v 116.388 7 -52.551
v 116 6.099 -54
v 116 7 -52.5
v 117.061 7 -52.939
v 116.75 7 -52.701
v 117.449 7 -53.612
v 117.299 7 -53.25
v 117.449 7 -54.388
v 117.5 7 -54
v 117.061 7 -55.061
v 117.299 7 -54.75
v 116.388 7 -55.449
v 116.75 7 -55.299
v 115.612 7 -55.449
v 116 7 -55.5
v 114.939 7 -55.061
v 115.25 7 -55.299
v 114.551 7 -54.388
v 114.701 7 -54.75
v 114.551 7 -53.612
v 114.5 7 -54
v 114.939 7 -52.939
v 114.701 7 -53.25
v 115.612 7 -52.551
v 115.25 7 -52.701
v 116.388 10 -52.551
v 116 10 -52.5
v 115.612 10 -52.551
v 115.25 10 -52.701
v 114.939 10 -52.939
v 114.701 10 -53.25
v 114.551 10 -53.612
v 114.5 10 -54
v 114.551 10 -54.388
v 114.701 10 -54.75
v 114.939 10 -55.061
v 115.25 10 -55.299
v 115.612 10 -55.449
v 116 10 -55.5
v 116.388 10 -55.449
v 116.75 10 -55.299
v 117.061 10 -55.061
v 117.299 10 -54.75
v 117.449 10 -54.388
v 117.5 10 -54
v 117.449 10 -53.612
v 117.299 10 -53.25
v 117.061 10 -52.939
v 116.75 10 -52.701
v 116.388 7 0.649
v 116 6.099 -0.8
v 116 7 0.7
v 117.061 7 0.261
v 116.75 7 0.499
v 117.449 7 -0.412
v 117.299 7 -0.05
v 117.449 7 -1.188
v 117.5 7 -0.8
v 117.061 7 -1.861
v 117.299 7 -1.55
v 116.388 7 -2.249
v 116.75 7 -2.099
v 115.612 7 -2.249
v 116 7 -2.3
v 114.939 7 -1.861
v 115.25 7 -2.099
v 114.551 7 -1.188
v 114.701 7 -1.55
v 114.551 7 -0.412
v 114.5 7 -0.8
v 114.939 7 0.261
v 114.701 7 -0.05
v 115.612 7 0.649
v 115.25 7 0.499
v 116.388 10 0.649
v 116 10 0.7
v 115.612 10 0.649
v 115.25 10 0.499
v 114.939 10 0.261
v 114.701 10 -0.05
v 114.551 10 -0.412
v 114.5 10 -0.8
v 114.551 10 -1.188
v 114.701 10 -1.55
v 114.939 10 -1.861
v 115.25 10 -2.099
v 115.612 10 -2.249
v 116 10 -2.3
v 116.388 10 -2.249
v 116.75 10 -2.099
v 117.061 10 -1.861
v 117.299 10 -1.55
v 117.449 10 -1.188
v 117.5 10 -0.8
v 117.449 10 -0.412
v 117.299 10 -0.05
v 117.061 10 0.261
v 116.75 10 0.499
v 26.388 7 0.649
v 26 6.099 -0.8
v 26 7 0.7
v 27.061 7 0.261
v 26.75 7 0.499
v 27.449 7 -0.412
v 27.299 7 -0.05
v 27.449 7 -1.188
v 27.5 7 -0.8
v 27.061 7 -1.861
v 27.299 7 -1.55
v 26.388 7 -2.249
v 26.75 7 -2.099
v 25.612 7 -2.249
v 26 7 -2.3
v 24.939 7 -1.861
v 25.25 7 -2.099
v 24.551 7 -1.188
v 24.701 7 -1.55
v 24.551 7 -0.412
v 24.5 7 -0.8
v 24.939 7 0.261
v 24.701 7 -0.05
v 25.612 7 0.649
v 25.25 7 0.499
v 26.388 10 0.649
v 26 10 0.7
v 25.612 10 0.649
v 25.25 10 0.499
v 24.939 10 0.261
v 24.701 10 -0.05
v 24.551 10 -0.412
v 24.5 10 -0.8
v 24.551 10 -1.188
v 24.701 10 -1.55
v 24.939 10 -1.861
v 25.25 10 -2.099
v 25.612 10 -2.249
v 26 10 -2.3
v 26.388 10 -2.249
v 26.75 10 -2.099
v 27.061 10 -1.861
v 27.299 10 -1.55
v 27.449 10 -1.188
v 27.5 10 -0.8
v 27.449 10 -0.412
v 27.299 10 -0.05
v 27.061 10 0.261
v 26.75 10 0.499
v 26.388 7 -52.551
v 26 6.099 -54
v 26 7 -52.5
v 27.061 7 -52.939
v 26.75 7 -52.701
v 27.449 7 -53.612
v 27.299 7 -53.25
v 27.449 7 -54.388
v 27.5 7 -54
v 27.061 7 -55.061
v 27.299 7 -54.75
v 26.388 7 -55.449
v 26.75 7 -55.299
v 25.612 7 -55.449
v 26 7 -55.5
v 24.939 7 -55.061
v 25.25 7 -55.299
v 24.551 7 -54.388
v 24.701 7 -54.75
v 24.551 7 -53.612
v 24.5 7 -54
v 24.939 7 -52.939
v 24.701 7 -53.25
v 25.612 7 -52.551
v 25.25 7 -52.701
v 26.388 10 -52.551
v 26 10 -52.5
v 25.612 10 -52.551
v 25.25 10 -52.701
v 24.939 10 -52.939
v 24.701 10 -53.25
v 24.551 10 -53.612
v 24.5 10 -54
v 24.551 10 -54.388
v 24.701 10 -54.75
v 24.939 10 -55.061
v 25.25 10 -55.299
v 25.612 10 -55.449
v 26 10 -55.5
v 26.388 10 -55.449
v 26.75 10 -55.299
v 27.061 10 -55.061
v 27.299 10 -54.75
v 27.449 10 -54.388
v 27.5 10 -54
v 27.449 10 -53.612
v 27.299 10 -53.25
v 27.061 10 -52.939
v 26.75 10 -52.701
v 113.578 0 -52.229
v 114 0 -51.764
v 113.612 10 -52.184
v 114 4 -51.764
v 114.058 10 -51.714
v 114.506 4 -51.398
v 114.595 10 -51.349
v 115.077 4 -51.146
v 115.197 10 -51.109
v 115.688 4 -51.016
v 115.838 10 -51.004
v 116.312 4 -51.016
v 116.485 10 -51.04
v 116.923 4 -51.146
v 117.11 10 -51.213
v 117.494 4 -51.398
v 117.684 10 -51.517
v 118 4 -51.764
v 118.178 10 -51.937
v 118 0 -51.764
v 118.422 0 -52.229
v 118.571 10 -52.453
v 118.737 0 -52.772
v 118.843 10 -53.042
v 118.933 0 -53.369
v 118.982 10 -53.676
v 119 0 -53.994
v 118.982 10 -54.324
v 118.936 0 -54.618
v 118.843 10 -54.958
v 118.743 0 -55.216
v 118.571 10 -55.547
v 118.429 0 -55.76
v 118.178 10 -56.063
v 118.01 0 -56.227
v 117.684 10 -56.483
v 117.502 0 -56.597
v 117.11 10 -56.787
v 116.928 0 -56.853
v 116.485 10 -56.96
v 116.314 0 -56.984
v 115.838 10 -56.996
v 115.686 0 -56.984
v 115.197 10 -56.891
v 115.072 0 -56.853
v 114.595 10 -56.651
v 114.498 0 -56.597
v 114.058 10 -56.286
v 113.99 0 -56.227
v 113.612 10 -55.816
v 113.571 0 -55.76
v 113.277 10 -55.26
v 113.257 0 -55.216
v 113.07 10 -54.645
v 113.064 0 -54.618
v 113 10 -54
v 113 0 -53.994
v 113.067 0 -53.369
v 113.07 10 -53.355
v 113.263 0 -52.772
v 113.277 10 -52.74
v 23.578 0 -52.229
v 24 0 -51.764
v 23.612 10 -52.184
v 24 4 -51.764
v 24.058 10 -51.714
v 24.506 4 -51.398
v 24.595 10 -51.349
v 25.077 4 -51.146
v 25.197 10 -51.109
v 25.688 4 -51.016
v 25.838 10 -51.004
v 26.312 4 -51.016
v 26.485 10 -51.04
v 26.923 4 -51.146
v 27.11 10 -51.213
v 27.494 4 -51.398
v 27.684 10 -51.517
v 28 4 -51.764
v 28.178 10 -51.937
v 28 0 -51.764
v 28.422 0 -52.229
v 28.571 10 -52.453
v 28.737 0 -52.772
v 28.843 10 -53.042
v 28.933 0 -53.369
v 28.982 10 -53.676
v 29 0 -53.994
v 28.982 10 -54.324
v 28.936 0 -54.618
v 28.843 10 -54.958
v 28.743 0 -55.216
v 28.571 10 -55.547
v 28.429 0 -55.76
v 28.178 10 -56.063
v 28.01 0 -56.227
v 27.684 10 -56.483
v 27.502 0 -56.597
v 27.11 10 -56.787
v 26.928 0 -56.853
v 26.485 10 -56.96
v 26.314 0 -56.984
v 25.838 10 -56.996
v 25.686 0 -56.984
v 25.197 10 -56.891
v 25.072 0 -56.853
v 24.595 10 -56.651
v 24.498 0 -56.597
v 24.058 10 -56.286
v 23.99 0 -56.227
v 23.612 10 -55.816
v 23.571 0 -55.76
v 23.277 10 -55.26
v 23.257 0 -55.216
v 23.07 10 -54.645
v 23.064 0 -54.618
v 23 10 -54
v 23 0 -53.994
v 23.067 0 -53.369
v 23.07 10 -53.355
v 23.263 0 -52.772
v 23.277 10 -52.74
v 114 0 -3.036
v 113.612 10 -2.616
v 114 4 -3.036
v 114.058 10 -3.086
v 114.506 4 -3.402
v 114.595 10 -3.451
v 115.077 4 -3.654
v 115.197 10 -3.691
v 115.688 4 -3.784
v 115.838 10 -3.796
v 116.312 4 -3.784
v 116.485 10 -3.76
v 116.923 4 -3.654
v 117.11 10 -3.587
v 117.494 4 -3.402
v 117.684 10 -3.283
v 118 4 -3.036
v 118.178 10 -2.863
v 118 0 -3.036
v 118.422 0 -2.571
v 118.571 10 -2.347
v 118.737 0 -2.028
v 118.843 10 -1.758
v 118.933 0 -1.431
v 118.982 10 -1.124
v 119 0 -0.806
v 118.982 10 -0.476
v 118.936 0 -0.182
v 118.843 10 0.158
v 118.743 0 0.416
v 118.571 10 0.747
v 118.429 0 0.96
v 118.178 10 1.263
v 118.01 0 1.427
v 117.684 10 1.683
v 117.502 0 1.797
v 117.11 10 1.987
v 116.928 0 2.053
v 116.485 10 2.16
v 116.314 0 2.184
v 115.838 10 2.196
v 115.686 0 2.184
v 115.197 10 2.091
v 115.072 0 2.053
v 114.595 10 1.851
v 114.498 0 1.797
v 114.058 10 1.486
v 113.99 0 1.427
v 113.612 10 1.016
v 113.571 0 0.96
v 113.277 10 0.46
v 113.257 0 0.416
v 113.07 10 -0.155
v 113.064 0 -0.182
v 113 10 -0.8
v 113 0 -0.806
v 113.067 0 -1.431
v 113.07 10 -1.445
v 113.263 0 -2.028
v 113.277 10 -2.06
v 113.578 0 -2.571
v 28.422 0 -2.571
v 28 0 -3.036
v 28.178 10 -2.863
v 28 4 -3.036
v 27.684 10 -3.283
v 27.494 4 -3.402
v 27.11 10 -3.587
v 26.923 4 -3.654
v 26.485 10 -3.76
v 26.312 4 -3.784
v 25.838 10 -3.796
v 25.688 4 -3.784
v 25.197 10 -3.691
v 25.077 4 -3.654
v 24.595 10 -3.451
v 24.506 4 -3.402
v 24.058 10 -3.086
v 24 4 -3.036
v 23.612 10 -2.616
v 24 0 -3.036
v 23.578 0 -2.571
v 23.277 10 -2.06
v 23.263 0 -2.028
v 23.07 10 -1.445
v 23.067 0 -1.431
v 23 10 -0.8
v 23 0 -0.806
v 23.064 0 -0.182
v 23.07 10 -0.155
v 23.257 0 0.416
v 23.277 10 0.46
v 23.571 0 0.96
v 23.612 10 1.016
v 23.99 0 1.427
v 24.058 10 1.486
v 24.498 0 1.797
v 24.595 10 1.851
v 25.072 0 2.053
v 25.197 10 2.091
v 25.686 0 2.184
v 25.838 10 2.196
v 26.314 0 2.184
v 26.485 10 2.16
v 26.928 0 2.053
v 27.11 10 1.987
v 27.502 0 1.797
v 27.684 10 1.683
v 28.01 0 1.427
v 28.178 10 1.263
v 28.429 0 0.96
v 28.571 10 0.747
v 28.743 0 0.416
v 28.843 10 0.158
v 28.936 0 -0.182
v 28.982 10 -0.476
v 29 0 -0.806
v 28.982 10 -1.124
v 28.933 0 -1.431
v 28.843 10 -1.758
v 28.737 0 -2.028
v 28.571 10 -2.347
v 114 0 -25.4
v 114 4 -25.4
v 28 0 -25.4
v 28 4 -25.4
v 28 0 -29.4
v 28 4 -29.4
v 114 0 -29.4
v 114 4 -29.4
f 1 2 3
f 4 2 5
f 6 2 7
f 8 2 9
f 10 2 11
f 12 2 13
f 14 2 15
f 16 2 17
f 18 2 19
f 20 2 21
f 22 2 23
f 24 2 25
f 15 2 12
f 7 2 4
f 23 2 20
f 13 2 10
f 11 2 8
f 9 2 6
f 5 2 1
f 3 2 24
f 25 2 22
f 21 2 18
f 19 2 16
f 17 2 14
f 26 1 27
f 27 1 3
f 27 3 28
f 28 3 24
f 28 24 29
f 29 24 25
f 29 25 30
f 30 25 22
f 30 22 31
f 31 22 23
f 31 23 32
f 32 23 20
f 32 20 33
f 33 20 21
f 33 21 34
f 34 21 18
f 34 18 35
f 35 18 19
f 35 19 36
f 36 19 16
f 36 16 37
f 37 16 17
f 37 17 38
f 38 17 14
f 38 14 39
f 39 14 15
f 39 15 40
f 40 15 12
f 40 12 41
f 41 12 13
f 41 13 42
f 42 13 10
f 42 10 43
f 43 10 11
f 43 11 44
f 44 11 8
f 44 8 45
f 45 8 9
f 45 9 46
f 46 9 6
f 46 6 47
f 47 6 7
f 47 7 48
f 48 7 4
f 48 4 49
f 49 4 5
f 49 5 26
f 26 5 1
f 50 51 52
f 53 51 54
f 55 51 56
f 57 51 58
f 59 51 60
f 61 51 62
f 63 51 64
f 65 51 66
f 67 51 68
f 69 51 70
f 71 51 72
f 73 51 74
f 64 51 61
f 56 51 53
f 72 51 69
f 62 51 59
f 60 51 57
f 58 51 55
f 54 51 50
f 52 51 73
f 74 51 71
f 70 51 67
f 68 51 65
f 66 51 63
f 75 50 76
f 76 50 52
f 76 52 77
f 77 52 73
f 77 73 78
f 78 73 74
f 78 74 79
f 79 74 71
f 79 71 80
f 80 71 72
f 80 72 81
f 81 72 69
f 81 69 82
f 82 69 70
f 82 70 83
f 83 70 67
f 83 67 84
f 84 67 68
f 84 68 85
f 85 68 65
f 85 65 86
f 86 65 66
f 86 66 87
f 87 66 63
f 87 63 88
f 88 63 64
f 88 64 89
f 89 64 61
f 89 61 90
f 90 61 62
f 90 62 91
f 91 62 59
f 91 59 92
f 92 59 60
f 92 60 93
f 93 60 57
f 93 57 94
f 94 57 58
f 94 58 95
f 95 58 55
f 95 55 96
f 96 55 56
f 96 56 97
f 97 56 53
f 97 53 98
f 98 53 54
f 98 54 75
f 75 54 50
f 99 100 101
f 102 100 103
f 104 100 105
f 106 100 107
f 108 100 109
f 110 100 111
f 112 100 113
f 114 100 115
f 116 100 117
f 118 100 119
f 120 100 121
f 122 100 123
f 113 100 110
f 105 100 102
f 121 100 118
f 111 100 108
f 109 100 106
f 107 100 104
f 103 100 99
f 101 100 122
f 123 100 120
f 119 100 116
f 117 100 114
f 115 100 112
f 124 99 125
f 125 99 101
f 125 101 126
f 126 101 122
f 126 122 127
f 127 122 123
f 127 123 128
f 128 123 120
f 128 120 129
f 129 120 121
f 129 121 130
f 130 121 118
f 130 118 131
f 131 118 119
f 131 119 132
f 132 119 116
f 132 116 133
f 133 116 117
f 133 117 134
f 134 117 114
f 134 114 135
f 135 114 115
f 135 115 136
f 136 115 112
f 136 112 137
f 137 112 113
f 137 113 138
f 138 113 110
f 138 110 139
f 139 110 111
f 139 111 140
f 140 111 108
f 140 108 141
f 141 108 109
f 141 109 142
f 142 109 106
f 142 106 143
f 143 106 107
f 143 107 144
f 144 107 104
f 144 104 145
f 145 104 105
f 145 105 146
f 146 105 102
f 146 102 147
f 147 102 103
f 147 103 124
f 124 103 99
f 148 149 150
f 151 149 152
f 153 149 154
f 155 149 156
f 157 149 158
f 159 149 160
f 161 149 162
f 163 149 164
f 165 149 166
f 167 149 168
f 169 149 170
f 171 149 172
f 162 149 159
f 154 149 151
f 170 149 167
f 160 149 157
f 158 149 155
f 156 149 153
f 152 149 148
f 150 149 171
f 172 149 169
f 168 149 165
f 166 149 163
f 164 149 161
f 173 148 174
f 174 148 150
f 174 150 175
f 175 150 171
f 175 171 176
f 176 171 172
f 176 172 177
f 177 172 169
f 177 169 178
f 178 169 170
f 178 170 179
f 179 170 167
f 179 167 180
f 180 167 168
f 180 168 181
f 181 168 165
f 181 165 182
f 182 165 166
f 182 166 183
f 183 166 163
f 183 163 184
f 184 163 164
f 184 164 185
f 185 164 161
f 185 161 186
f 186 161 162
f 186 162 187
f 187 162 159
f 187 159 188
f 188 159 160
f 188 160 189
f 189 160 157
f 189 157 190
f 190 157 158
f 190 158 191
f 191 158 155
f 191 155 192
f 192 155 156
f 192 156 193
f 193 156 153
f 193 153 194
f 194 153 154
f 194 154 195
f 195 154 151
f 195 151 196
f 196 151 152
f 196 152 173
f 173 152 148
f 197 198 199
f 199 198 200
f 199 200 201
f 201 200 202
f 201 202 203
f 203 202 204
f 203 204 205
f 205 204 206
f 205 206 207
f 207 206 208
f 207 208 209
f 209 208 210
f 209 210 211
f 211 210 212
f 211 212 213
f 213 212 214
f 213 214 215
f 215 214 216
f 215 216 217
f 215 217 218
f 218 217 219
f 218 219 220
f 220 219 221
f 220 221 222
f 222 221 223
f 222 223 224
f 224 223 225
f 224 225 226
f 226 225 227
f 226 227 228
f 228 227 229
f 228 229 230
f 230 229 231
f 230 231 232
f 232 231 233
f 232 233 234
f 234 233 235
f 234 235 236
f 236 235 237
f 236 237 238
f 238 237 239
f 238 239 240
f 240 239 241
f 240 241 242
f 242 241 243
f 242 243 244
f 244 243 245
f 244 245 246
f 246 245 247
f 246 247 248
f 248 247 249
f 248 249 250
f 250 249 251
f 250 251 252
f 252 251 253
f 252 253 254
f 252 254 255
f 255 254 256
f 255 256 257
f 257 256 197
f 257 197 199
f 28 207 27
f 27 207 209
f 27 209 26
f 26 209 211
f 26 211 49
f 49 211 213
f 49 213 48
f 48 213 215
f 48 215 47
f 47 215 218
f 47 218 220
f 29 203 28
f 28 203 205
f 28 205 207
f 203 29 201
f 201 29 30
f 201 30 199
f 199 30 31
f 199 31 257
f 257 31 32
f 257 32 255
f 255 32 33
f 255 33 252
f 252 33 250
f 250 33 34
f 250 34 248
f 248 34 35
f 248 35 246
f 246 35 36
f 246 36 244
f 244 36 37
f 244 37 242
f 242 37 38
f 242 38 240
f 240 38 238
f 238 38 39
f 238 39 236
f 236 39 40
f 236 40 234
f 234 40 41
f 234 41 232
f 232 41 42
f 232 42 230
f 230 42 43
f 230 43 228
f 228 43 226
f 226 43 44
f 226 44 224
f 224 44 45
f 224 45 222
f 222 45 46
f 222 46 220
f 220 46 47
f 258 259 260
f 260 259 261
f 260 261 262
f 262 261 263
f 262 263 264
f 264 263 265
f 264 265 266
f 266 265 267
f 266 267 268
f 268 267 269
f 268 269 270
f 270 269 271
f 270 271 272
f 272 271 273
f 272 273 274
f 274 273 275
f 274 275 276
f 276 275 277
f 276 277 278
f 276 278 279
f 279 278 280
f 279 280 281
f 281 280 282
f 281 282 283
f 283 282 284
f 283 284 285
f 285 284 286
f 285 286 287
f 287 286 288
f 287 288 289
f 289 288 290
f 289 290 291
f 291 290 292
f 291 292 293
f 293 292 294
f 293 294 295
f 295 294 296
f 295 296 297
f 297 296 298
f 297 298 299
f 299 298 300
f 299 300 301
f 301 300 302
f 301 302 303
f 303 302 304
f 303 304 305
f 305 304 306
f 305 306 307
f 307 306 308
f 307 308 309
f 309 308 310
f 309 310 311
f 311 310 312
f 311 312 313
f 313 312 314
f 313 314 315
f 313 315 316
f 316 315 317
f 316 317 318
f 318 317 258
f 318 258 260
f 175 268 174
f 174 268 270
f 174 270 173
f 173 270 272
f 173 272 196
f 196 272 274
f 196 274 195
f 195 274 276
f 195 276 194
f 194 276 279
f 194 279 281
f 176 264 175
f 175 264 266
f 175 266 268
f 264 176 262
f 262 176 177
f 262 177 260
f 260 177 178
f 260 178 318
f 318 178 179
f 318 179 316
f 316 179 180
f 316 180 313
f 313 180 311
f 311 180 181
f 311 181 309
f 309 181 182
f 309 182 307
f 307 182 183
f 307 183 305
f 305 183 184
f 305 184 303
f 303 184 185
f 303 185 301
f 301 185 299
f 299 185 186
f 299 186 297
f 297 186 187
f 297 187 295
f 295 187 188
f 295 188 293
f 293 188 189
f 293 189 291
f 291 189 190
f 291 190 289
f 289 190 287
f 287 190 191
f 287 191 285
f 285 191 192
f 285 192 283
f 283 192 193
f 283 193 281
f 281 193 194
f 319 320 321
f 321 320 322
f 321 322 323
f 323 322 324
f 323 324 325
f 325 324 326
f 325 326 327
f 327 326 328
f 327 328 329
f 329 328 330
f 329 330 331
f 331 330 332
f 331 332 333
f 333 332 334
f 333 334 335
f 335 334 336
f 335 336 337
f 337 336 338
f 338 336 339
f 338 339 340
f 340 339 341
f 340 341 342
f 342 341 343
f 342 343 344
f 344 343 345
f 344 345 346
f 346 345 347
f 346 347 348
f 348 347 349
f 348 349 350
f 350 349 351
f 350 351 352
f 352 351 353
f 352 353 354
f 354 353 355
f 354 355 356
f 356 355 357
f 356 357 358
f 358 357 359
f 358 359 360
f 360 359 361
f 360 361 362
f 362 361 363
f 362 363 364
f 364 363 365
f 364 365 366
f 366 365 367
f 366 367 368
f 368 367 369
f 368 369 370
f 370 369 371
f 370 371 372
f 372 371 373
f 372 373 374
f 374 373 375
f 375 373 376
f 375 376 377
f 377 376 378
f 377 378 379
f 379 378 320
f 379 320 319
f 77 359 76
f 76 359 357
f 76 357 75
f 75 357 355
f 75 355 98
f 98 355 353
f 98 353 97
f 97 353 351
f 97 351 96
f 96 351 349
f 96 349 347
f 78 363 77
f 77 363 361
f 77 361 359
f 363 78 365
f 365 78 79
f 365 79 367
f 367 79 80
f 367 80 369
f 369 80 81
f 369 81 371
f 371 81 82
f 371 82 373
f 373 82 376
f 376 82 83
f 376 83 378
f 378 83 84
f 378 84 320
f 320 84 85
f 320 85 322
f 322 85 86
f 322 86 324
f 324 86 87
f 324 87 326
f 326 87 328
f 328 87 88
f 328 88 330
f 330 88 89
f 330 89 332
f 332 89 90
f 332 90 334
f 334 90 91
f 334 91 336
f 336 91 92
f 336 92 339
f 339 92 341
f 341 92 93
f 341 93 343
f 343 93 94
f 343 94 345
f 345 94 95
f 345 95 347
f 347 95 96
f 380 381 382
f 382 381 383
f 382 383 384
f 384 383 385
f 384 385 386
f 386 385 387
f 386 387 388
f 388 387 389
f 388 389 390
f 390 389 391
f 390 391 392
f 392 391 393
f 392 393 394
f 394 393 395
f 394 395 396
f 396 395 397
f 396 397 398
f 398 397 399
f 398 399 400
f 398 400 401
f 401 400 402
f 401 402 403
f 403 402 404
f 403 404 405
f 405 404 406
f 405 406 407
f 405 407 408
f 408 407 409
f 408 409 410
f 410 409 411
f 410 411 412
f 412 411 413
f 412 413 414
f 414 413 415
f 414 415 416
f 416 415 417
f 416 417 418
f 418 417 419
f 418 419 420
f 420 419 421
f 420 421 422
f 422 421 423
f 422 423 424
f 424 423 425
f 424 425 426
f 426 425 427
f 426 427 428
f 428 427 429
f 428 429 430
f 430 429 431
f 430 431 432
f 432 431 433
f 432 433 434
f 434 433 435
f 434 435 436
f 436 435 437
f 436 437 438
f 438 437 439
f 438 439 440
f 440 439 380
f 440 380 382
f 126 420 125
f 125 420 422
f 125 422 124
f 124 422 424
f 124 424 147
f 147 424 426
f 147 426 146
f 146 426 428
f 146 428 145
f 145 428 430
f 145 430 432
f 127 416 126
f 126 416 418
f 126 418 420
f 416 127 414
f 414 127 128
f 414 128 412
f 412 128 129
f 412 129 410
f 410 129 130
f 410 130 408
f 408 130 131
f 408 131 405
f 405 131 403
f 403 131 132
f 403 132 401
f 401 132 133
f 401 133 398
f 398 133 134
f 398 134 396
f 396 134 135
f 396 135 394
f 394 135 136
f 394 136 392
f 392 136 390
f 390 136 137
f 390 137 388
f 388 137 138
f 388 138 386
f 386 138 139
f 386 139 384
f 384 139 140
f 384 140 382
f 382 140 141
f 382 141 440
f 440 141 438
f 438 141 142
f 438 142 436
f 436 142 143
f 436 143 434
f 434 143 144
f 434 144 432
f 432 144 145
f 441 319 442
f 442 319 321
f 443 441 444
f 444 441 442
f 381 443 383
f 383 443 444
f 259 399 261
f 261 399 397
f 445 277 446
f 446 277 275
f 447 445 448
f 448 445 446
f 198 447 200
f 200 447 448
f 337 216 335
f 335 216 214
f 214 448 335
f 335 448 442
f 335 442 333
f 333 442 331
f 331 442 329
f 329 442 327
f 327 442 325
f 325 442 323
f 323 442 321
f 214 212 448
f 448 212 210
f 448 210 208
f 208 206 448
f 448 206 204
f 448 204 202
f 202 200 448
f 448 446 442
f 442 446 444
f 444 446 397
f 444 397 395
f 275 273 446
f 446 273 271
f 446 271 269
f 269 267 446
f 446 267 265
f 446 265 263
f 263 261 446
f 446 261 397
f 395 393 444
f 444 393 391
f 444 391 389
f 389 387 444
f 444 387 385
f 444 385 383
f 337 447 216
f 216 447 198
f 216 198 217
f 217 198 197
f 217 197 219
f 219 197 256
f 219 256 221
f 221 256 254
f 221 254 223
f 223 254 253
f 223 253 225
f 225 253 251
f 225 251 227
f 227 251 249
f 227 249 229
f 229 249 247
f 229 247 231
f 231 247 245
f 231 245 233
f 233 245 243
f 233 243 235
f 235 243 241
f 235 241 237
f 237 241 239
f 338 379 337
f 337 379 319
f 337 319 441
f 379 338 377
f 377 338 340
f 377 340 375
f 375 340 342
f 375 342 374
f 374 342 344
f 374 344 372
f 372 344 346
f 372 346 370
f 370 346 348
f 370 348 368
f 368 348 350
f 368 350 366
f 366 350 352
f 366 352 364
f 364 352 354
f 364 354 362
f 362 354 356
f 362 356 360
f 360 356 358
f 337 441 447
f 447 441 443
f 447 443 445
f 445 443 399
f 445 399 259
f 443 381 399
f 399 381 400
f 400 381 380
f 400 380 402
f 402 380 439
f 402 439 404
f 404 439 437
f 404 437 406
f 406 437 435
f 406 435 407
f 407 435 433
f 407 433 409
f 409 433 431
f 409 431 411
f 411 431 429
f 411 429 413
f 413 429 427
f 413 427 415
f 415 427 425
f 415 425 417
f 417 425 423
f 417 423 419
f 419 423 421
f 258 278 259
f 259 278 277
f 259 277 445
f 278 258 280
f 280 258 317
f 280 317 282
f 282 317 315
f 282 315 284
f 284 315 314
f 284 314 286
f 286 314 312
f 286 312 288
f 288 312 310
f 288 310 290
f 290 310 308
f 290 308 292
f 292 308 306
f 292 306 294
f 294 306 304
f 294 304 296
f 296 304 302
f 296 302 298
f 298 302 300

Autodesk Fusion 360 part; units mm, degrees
sketch "Schizzo9" plane through (0, 0, 0) normal (0, 1, 0) x (1, 0, 0)
  line L0 (11, 28) -> (76.9, 28)
  line L1 (76.9, 28) -> (76.9, -18)
  line L2 (76.9, -18) -> (11, -18)
  line L3 (11, -18) -> (11, 28)
  circle A0 centre (11, 28) radius 2.75
  circle A1 centre (76.9, 28) radius 2.75
  circle A2 centre (11, -18) radius 2.75
  circle A3 centre (76.9, -18) radius 2.75
  line L4 (11, 28) -> (9, 28)
  line L5 (11, 28) -> (13, 28)
  line L6 (9, 28) -> (9, -18)
  line L7 (13, 28) -> (13, -18)
  line L8 (76.9, 28) -> (74.9, 28)
  line L9 (76.9, 28) -> (78.9, 28)
  line L10 (78.9, 28) -> (78.9, -18)
  line L11 (74.9, 28) -> (74.9, -18)
  line L12 (78.9, 5) -> (78.9, 7)
  line L13 (78.9, 5) -> (78.9, 3)
  line L14 (78.9, 7) -> (9, 7)
  line L15 (78.9, 3) -> (9, 3)
  dimension "d99" = 65.9
  dimension "d100" = 46
  dimension "d101" = 5.5
  dimension "d102" = 5.5
  dimension "d103" = 5.5
  dimension "d104" = 5.5
  dimension "d105" = 2
  dimension "d106" = 2
  dimension "d107" = 2
  dimension "d108" = 2
  dimension "d109" = 2
  dimension "d110" = 2
sketch "Schizzo10" plane through (0, 0, 0) normal (0, 1, 0) x (1, 0, 0)
  line L0 (26, 54) -> (116, 54)
  line L1 (116, 54) -> (116, 0.8)
  line L2 (116, 0.8) -> (26, 0.8)
  line L3 (26, 0.8) -> (26, 54)
  circle A0 centre (26, 54) radius 3
  circle A1 centre (26, 0.8) radius 3
  circle A2 centre (116, 54) radius 3
  circle A3 centre (116, 0.8) radius 3
  line L4 (26, 54) -> (24, 54)
  line L5 (26, 54) -> (28, 54)
  line L6 (24, 54) -> (24, 0.8)
  line L7 (28, 54) -> (28, 0.8)
  line L8 (116, 54) -> (114, 54)
  line L9 (116, 54) -> (118, 54)
  line L10 (118, 54) -> (118, 0.8)
  line L11 (114, 54) -> (114, 0.8)
  line L12 (118, 27.4) -> (118, 25.4)
  line L13 (118, 27.4) -> (118, 29.4)
  line L14 (118, 29.4) -> (24, 29.4)
  line L15 (118, 25.4) -> (24, 25.4)
  dimension "d127" = 90
  dimension "d128" = 53.2
  dimension "d129" = 6
  dimension "d130" = 6
  dimension "d131" = 6
  dimension "d132" = 6
  dimension "d133" = 2
  dimension "d134" = 2
  dimension "d135" = 2
  dimension "d136" = 2
  dimension "d137" = 2
  dimension "d138" = 2
extrude "Estrusione18" add sketch "Schizzo10" along normal blind 4 contours L3 A0 L7 L14 | L3 A0 L6 L14 | L3 L7 L14 L15 | L3 L6 L14 L15 | L7 L11 L14 L15 | L3 A1 L7 L15 | L3 A1 L6 L15 | L1 A2 L11 L14 | L1 L11 L14 L15 | L1 A2 L10 L14 | L1 A3 L11 L15 | L1 L10 L12 L13 L14 L15 | L1 A3 L10 L15
extrude "Estrusione19" add sketch "Schizzo10" along normal blind 10 contours L0 A0 L4 L5 L6 | L0 L3 A0 L5 L7 | L3 A0 L4 L6 | L0 A0 L7 | L0 A2 L8 L9 L10 | L0 A2 L11 | L0 L1 A2 L8 L11 | L2 L3 A1 L7 | L2 L3 A1 | L1 A2 L9 L10 | L2 A1 L7 | L2 A3 L11 | L1 L2 A3 L11 | L1 L2 A3
hole "Foratura13" at (26, 10, -54) direction (0, -1, 0) diameter 3 depth 3 tip angle 118
hole "Foratura14" at (26, 10, -0.8) direction (0, -1, 0) diameter 3 depth 3 tip angle 118
hole "Foratura15" at (116, 10, -0.8) direction (0, -1, 0) diameter 3 depth 3 tip angle 118
hole "Foratura16" at (116, 10, -54) direction (0, -1, 0) diameter 3 depth 3 tip angle 118
